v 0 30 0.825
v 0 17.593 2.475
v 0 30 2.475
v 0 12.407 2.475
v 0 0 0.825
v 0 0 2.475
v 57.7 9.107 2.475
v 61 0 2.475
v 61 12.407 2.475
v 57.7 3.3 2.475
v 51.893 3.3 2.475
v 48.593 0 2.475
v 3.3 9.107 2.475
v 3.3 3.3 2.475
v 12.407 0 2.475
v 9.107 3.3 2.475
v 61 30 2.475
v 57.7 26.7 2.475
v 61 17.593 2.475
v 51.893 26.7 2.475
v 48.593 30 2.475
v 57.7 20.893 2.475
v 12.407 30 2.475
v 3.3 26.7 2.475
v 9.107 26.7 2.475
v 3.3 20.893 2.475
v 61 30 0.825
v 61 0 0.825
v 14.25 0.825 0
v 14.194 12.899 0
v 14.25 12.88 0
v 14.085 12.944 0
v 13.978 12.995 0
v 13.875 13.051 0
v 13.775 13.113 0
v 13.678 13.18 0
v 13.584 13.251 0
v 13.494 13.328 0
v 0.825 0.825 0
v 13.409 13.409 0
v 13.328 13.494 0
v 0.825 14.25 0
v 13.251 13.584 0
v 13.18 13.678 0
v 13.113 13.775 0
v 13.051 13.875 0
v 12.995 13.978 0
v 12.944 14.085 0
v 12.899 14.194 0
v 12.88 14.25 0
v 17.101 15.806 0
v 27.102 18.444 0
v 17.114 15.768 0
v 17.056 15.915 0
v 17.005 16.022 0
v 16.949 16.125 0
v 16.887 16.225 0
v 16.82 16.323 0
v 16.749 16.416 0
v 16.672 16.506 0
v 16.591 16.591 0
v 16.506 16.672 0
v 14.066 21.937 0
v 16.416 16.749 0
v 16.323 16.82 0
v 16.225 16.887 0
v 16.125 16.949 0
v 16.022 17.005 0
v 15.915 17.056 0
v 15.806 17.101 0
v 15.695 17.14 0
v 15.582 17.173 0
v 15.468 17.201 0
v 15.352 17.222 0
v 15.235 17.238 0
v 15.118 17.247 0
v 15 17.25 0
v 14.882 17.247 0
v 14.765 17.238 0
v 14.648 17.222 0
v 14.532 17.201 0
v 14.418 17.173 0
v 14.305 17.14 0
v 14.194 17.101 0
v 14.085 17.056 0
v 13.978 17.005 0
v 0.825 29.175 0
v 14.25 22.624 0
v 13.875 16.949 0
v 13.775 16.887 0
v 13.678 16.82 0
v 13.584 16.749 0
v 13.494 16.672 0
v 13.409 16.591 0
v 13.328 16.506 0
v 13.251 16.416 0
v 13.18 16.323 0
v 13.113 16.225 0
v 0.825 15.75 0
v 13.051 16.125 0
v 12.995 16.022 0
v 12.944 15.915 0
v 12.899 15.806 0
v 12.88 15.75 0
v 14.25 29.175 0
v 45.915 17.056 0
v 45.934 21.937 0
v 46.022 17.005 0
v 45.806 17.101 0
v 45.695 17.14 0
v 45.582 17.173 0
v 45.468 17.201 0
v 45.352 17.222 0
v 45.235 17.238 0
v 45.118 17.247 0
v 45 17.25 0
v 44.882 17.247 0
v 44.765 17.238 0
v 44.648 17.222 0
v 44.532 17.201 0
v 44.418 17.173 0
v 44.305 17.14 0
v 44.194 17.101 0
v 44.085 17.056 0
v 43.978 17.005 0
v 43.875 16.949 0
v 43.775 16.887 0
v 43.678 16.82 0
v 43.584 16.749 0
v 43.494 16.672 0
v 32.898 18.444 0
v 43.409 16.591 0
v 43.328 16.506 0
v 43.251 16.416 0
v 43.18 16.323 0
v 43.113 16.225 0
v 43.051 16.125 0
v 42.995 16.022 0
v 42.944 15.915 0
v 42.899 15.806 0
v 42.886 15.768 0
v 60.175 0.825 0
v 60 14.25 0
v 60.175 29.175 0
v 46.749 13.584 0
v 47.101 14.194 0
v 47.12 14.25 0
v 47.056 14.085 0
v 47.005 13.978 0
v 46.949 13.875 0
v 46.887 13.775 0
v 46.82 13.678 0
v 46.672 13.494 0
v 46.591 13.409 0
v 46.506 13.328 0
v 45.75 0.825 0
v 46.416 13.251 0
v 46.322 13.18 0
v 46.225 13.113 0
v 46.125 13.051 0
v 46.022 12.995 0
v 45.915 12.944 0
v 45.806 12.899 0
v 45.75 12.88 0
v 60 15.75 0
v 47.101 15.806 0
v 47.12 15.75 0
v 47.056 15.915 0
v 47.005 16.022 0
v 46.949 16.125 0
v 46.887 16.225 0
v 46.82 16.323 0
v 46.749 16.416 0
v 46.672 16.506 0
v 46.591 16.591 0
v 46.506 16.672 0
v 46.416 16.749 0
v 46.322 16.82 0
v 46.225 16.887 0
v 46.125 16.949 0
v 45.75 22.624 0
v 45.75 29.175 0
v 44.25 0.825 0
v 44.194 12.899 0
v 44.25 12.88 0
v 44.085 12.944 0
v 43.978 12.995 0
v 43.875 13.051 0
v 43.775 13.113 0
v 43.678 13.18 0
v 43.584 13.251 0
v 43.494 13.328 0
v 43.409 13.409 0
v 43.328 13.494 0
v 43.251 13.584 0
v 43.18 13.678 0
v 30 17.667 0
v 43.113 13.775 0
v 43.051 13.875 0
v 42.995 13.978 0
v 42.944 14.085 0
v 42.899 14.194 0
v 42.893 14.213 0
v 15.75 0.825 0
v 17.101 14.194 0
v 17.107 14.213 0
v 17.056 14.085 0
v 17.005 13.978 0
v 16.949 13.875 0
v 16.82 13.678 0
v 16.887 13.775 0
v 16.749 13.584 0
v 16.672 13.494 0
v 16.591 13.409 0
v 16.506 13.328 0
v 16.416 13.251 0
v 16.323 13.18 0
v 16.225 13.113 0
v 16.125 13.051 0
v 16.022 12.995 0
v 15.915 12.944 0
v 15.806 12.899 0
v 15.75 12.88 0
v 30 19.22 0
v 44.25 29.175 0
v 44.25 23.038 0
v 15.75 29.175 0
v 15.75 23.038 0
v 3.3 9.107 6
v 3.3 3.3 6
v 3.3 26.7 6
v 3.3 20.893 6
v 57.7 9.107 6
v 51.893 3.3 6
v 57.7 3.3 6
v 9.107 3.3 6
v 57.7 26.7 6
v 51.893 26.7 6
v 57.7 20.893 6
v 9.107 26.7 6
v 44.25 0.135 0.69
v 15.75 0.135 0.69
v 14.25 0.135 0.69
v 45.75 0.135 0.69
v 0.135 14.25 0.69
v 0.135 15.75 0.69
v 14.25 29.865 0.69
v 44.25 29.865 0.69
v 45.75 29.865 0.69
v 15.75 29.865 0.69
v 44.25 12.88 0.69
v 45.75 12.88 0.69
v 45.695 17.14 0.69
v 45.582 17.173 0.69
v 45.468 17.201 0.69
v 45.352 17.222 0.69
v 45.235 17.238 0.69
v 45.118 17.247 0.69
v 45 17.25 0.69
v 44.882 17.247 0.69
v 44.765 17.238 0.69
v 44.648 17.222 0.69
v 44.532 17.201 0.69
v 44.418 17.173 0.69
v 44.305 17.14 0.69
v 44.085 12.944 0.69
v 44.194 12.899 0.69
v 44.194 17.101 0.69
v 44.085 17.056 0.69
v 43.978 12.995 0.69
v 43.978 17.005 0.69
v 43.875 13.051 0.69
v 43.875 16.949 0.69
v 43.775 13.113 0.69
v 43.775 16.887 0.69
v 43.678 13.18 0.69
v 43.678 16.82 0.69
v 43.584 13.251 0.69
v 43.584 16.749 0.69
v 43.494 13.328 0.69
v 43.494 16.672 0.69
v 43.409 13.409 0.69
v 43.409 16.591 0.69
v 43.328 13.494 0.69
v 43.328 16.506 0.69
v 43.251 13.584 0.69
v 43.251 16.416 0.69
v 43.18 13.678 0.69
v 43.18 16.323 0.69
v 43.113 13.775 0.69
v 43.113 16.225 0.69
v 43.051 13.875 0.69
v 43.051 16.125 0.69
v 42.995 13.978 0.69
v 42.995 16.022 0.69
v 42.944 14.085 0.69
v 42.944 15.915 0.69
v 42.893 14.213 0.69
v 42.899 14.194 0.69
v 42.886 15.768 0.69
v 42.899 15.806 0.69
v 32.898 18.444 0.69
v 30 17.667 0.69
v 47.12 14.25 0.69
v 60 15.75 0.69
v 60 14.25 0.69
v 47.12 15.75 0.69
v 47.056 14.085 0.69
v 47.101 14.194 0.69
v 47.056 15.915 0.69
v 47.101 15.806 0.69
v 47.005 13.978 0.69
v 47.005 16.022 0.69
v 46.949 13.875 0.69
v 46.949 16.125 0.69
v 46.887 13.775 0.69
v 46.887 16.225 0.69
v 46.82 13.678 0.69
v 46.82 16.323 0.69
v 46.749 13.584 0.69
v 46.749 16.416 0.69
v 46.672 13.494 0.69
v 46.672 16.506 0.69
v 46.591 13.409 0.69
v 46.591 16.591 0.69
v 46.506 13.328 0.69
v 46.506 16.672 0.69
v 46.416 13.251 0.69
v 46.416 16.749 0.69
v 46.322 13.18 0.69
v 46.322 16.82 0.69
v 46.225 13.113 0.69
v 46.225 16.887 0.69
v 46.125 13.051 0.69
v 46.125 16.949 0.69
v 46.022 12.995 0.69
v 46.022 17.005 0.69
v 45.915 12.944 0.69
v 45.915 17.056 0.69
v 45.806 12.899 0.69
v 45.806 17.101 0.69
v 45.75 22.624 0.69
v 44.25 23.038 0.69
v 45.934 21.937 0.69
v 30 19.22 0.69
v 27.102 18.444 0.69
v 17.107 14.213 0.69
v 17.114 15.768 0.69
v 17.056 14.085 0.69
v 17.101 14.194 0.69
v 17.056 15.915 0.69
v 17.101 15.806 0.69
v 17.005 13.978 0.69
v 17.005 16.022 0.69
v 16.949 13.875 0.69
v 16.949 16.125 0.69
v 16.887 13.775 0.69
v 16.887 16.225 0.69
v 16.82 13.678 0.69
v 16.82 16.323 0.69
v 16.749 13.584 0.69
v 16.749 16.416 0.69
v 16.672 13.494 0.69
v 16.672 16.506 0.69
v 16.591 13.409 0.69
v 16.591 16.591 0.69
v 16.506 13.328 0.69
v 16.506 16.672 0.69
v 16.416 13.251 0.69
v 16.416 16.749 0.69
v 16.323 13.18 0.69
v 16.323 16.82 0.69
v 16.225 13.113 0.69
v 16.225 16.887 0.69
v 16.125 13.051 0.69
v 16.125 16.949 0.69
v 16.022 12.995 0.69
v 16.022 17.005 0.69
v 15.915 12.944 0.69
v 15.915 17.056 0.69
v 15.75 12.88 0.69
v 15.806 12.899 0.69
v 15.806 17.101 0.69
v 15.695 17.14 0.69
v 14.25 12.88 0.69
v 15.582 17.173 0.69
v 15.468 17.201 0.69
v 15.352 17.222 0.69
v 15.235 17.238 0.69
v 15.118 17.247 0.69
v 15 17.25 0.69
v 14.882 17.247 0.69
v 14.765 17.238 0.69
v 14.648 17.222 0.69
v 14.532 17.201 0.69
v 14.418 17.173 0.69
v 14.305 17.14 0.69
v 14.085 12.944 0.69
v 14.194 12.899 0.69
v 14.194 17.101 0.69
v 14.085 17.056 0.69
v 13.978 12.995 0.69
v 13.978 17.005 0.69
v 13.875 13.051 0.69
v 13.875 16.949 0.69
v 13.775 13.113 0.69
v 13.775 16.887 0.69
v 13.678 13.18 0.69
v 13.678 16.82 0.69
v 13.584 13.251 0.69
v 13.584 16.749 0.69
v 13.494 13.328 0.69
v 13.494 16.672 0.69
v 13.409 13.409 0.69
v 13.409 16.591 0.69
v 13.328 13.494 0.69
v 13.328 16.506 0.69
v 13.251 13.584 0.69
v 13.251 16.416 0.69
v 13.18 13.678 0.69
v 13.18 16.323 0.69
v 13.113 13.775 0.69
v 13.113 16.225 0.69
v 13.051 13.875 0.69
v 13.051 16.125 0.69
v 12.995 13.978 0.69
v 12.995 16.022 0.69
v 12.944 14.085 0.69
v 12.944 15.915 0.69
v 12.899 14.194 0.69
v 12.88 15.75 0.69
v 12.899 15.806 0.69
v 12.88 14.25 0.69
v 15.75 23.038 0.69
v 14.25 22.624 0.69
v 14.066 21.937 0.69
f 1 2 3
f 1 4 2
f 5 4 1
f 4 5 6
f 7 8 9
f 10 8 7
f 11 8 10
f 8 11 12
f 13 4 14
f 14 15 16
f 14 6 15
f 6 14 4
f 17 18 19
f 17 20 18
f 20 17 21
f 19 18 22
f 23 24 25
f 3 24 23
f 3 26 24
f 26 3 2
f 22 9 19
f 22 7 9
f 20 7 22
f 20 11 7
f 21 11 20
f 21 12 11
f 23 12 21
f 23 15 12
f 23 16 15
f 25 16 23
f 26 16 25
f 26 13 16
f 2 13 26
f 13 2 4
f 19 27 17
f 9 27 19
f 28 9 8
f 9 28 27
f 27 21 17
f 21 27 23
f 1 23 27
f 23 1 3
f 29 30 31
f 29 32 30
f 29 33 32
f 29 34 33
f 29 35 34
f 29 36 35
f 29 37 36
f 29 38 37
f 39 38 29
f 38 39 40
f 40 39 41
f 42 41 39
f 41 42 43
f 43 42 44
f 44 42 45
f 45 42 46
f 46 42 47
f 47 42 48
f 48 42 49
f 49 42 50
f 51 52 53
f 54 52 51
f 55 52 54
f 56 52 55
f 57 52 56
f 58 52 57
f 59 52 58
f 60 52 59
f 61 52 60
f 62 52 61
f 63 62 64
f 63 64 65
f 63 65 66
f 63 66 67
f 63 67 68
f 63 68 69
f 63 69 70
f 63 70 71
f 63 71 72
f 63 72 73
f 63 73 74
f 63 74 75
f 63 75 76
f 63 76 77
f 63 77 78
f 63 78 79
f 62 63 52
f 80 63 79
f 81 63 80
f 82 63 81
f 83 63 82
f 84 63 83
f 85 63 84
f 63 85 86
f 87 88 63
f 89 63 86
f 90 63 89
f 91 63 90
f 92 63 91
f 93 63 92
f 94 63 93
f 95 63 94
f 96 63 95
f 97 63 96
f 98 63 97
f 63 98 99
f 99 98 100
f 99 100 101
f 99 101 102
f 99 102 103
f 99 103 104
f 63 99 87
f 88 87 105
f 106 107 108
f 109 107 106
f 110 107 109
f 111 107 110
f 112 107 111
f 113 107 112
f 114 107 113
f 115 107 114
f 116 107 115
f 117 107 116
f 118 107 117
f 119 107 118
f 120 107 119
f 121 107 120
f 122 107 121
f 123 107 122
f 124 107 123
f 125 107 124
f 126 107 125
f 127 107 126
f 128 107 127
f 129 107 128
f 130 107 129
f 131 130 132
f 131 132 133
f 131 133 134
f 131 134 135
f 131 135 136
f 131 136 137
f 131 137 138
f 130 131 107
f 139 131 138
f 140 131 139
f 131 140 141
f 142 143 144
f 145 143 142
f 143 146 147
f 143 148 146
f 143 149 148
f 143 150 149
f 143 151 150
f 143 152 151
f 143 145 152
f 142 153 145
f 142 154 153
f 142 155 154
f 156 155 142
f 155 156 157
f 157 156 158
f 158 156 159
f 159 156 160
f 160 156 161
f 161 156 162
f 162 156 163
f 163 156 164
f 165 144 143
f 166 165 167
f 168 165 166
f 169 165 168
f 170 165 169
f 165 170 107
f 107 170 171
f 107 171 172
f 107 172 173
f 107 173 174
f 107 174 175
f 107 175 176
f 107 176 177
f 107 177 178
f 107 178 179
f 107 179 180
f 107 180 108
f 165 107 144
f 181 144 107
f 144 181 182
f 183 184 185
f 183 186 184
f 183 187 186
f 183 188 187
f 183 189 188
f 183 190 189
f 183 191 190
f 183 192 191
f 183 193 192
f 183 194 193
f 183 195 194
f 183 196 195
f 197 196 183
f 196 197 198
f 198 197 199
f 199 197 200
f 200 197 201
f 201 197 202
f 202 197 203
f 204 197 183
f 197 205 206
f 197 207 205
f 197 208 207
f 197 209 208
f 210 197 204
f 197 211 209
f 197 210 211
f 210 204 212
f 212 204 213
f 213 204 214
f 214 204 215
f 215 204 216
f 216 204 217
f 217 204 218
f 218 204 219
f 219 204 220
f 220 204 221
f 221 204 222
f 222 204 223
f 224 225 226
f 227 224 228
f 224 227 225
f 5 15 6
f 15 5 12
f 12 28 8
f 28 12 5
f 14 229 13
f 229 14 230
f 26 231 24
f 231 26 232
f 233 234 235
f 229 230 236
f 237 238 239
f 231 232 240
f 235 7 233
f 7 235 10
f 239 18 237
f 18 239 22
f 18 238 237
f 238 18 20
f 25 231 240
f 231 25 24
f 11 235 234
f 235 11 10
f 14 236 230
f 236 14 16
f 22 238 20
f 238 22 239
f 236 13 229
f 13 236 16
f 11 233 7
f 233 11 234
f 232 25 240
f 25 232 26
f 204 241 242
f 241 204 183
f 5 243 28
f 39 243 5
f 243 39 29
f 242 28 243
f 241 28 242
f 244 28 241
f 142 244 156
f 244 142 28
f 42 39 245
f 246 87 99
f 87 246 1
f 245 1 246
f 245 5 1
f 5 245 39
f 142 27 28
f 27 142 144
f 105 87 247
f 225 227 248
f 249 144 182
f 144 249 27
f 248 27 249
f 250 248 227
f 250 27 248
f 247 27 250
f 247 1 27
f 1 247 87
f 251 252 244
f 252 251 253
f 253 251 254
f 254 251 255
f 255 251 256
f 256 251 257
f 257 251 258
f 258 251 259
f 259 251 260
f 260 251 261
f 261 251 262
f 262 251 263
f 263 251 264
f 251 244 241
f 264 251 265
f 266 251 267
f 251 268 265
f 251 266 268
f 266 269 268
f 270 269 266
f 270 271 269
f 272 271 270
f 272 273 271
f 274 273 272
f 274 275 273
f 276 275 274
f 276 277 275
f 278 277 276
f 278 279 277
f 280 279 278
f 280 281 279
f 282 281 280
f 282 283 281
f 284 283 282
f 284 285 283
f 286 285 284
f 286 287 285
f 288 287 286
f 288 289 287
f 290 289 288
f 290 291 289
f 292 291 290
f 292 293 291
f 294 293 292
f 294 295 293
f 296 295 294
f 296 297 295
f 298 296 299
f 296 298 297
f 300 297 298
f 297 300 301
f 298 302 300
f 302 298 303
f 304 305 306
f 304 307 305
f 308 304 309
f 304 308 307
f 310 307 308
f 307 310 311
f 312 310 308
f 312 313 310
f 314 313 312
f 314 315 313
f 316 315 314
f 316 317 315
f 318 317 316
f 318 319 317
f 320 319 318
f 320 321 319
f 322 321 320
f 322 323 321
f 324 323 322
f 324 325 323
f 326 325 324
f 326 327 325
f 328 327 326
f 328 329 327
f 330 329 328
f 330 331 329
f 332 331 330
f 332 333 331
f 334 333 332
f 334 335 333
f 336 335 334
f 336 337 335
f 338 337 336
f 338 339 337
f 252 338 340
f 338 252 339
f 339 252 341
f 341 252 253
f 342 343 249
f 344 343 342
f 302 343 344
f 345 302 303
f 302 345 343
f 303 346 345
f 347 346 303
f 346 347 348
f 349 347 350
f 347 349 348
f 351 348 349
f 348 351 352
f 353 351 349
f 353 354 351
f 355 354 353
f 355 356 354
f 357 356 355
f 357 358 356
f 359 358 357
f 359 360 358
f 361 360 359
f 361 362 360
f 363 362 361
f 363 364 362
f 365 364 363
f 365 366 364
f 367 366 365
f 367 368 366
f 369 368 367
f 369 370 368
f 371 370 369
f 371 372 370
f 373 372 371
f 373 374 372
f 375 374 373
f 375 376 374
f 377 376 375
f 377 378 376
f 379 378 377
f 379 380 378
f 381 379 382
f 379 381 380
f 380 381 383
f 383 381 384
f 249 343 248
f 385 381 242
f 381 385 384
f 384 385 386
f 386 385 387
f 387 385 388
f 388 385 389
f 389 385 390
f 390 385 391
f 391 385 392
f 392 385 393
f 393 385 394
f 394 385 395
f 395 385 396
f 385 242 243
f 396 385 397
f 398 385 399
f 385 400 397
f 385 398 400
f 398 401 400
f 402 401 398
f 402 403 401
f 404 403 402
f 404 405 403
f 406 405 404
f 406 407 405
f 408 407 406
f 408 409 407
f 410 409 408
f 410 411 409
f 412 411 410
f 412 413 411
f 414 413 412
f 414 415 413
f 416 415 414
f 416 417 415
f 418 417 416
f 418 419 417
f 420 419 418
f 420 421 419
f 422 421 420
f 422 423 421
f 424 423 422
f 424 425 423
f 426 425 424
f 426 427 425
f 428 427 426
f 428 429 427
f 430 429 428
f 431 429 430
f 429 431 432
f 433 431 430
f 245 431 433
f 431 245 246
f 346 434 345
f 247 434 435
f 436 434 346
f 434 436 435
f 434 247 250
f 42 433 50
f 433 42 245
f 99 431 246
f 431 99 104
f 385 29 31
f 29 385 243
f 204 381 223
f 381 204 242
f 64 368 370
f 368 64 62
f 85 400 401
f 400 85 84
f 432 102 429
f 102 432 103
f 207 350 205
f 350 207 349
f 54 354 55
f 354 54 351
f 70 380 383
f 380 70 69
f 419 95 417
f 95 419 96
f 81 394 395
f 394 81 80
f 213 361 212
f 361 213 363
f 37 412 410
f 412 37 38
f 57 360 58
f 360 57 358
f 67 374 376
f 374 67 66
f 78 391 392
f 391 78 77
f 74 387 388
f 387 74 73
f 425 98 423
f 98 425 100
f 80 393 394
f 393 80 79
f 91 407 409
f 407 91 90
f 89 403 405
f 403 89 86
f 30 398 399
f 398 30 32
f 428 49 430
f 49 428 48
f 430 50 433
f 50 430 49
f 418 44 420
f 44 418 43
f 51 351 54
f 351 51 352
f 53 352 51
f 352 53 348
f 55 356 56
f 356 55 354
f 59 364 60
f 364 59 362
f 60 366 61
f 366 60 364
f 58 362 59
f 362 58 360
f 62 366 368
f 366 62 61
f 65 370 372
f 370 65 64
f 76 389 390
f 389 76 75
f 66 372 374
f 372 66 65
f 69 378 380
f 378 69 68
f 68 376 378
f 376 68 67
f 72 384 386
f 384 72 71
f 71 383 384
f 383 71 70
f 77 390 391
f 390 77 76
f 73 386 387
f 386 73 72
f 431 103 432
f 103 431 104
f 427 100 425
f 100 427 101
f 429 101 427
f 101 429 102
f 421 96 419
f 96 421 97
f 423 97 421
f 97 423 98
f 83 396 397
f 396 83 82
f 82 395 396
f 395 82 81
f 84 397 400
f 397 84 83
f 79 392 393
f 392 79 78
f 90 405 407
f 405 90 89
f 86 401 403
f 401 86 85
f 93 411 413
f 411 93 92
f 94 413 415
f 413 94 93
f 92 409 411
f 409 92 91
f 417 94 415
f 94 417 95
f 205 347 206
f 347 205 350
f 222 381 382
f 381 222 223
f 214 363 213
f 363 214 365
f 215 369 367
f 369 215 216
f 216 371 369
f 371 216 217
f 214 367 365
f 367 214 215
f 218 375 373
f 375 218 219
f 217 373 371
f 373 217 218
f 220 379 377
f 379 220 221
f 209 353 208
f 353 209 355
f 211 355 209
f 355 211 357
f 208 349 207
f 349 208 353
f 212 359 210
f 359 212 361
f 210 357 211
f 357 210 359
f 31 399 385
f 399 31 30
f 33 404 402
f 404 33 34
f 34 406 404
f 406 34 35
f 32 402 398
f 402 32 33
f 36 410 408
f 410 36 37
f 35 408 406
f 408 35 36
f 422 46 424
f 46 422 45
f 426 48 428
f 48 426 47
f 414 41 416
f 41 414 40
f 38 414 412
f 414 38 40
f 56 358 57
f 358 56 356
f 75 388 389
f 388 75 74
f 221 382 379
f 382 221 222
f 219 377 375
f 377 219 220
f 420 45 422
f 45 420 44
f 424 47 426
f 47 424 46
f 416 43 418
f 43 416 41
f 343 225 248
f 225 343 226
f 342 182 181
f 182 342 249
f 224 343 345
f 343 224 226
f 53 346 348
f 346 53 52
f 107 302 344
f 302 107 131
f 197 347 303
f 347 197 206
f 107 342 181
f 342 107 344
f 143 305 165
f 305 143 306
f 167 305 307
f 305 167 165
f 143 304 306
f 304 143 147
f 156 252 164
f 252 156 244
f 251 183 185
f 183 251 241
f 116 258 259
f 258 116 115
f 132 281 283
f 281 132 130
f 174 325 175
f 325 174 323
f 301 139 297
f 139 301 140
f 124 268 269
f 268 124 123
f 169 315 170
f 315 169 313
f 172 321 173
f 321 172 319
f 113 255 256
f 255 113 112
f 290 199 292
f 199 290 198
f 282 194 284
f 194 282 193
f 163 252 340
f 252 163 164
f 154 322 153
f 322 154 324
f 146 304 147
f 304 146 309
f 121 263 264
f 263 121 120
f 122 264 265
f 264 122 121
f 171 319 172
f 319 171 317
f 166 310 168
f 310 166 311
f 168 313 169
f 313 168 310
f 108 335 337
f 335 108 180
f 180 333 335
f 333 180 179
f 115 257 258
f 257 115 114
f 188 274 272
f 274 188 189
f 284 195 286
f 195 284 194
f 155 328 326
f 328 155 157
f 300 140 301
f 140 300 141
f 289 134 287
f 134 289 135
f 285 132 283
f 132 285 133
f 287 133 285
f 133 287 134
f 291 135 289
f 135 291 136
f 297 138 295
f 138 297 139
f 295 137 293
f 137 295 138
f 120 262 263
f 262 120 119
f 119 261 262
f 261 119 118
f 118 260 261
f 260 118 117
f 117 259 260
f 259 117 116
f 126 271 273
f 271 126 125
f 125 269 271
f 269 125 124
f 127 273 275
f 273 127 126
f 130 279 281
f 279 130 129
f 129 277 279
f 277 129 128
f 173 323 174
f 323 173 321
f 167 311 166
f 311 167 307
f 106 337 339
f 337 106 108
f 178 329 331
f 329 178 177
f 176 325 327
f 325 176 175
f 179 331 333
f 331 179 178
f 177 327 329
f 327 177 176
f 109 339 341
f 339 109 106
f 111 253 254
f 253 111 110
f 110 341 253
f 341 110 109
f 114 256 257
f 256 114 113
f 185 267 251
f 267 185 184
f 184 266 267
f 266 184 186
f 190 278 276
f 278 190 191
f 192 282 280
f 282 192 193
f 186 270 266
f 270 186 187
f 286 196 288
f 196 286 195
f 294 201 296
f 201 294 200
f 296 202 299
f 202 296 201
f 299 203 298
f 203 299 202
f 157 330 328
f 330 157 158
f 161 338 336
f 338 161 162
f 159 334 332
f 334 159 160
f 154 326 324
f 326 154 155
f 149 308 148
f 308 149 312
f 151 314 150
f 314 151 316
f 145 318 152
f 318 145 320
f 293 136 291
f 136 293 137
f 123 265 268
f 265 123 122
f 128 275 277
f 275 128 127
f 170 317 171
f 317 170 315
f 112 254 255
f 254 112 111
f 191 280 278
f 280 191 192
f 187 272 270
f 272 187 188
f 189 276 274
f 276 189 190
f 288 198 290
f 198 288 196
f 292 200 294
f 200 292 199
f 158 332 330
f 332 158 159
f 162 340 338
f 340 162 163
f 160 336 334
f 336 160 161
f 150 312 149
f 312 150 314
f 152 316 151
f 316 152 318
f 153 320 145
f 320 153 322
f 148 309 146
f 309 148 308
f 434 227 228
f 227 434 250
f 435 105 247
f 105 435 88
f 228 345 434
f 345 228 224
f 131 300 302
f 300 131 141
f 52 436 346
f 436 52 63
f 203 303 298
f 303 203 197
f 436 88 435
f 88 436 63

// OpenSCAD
// file: settings.scad
cube_width=30;
cube_height=16;
cube_thickness=3.3;

cap_width=30;
cap_height=6;
cap_thickness=3.3;

glyph_depth=0.7;
glyph_thickness=1.5;

photo_resitor_hole_r = 2.4;
spring_contact_hole_r = 3.125;
// file: cap_2x1.scad
include <settings.scad>

module cap_2x1(width, height, thickness)
{
    width2 = 2*width + 1;
    width1=(width-2*thickness)*2;
    difference()
    {
        union()
        {
            cube([width2, width, thickness*3/4]);
            translate([thickness,thickness,0])cube([width2-2*thickness, width-2*thickness, height]);
        }
        union()
        {
            translate([width2/2,width/2,0])rotate([0,0,45])translate([-width1/2,-width1/2,thickness*3/4]) cube([width1,width1,height]);
                        //corners
            translate([0,0.25*thickness,0])rotate([45,0,0]) translate([-0.5*width2, -width, -0.5*height]) cube([2*width2, width, 2*height]);
            translate([0.25*thickness,0,0]) rotate([0,-45,0]) translate([-width2, -0.5*width, -0.5*height]) cube([width2, 2*width, 2*height]);
            translate([width2-0.25*thickness,0,0]) rotate([0,45,0]) translate([0, 0, -0.5*height]) cube([width2, 2*width, 2*height]);
            translate([0,width-0.25*thickness,0]) rotate([-45,0,0]) translate([-0.5*width2, 0, -0.5*height]) cube([2*width2, width, 2*height]);
        }
    }
}

cap_2x1(cap_width, cap_height, cap_thickness);
// main file
use <cap_2x1.scad>
include <settings.scad>

module wiring(width, height, thickness)
{
    translate([0,(width-glyph_thickness)/2,-0.01]) cube([width/2, glyph_thickness, glyph_depth]);
    translate([(width-glyph_thickness)/2, 0, -0.01]) cube([glyph_thickness, width/2, glyph_depth]);
    translate([width/2, width/2, -0.01]) cylinder(h=glyph_depth, r=1.5*glyph_thickness, $fn=120);
    translate([(3*width-glyph_thickness)/2, 3*width/4, -0.01]) cube([glyph_thickness, width/2, glyph_depth]);
    translate([(width-glyph_thickness)/2, width/2, -0.01]) rotate([0,0,-75])cube([glyph_thickness, 1.08*width, glyph_depth]);
}
    
module cap_2x1_wireYY(width, height, thickness)
{
    difference()
    {
        cap_2x1(width, height, thickness);
        union()
        {
            wiring(width, height, thickness);
            translate([2*width, 0,0]) mirror([1,0,0]) wiring(width, height, thickness);
        }
    }
}

cap_2x1_wireYY(cap_width, cap_height, cap_thickness);
